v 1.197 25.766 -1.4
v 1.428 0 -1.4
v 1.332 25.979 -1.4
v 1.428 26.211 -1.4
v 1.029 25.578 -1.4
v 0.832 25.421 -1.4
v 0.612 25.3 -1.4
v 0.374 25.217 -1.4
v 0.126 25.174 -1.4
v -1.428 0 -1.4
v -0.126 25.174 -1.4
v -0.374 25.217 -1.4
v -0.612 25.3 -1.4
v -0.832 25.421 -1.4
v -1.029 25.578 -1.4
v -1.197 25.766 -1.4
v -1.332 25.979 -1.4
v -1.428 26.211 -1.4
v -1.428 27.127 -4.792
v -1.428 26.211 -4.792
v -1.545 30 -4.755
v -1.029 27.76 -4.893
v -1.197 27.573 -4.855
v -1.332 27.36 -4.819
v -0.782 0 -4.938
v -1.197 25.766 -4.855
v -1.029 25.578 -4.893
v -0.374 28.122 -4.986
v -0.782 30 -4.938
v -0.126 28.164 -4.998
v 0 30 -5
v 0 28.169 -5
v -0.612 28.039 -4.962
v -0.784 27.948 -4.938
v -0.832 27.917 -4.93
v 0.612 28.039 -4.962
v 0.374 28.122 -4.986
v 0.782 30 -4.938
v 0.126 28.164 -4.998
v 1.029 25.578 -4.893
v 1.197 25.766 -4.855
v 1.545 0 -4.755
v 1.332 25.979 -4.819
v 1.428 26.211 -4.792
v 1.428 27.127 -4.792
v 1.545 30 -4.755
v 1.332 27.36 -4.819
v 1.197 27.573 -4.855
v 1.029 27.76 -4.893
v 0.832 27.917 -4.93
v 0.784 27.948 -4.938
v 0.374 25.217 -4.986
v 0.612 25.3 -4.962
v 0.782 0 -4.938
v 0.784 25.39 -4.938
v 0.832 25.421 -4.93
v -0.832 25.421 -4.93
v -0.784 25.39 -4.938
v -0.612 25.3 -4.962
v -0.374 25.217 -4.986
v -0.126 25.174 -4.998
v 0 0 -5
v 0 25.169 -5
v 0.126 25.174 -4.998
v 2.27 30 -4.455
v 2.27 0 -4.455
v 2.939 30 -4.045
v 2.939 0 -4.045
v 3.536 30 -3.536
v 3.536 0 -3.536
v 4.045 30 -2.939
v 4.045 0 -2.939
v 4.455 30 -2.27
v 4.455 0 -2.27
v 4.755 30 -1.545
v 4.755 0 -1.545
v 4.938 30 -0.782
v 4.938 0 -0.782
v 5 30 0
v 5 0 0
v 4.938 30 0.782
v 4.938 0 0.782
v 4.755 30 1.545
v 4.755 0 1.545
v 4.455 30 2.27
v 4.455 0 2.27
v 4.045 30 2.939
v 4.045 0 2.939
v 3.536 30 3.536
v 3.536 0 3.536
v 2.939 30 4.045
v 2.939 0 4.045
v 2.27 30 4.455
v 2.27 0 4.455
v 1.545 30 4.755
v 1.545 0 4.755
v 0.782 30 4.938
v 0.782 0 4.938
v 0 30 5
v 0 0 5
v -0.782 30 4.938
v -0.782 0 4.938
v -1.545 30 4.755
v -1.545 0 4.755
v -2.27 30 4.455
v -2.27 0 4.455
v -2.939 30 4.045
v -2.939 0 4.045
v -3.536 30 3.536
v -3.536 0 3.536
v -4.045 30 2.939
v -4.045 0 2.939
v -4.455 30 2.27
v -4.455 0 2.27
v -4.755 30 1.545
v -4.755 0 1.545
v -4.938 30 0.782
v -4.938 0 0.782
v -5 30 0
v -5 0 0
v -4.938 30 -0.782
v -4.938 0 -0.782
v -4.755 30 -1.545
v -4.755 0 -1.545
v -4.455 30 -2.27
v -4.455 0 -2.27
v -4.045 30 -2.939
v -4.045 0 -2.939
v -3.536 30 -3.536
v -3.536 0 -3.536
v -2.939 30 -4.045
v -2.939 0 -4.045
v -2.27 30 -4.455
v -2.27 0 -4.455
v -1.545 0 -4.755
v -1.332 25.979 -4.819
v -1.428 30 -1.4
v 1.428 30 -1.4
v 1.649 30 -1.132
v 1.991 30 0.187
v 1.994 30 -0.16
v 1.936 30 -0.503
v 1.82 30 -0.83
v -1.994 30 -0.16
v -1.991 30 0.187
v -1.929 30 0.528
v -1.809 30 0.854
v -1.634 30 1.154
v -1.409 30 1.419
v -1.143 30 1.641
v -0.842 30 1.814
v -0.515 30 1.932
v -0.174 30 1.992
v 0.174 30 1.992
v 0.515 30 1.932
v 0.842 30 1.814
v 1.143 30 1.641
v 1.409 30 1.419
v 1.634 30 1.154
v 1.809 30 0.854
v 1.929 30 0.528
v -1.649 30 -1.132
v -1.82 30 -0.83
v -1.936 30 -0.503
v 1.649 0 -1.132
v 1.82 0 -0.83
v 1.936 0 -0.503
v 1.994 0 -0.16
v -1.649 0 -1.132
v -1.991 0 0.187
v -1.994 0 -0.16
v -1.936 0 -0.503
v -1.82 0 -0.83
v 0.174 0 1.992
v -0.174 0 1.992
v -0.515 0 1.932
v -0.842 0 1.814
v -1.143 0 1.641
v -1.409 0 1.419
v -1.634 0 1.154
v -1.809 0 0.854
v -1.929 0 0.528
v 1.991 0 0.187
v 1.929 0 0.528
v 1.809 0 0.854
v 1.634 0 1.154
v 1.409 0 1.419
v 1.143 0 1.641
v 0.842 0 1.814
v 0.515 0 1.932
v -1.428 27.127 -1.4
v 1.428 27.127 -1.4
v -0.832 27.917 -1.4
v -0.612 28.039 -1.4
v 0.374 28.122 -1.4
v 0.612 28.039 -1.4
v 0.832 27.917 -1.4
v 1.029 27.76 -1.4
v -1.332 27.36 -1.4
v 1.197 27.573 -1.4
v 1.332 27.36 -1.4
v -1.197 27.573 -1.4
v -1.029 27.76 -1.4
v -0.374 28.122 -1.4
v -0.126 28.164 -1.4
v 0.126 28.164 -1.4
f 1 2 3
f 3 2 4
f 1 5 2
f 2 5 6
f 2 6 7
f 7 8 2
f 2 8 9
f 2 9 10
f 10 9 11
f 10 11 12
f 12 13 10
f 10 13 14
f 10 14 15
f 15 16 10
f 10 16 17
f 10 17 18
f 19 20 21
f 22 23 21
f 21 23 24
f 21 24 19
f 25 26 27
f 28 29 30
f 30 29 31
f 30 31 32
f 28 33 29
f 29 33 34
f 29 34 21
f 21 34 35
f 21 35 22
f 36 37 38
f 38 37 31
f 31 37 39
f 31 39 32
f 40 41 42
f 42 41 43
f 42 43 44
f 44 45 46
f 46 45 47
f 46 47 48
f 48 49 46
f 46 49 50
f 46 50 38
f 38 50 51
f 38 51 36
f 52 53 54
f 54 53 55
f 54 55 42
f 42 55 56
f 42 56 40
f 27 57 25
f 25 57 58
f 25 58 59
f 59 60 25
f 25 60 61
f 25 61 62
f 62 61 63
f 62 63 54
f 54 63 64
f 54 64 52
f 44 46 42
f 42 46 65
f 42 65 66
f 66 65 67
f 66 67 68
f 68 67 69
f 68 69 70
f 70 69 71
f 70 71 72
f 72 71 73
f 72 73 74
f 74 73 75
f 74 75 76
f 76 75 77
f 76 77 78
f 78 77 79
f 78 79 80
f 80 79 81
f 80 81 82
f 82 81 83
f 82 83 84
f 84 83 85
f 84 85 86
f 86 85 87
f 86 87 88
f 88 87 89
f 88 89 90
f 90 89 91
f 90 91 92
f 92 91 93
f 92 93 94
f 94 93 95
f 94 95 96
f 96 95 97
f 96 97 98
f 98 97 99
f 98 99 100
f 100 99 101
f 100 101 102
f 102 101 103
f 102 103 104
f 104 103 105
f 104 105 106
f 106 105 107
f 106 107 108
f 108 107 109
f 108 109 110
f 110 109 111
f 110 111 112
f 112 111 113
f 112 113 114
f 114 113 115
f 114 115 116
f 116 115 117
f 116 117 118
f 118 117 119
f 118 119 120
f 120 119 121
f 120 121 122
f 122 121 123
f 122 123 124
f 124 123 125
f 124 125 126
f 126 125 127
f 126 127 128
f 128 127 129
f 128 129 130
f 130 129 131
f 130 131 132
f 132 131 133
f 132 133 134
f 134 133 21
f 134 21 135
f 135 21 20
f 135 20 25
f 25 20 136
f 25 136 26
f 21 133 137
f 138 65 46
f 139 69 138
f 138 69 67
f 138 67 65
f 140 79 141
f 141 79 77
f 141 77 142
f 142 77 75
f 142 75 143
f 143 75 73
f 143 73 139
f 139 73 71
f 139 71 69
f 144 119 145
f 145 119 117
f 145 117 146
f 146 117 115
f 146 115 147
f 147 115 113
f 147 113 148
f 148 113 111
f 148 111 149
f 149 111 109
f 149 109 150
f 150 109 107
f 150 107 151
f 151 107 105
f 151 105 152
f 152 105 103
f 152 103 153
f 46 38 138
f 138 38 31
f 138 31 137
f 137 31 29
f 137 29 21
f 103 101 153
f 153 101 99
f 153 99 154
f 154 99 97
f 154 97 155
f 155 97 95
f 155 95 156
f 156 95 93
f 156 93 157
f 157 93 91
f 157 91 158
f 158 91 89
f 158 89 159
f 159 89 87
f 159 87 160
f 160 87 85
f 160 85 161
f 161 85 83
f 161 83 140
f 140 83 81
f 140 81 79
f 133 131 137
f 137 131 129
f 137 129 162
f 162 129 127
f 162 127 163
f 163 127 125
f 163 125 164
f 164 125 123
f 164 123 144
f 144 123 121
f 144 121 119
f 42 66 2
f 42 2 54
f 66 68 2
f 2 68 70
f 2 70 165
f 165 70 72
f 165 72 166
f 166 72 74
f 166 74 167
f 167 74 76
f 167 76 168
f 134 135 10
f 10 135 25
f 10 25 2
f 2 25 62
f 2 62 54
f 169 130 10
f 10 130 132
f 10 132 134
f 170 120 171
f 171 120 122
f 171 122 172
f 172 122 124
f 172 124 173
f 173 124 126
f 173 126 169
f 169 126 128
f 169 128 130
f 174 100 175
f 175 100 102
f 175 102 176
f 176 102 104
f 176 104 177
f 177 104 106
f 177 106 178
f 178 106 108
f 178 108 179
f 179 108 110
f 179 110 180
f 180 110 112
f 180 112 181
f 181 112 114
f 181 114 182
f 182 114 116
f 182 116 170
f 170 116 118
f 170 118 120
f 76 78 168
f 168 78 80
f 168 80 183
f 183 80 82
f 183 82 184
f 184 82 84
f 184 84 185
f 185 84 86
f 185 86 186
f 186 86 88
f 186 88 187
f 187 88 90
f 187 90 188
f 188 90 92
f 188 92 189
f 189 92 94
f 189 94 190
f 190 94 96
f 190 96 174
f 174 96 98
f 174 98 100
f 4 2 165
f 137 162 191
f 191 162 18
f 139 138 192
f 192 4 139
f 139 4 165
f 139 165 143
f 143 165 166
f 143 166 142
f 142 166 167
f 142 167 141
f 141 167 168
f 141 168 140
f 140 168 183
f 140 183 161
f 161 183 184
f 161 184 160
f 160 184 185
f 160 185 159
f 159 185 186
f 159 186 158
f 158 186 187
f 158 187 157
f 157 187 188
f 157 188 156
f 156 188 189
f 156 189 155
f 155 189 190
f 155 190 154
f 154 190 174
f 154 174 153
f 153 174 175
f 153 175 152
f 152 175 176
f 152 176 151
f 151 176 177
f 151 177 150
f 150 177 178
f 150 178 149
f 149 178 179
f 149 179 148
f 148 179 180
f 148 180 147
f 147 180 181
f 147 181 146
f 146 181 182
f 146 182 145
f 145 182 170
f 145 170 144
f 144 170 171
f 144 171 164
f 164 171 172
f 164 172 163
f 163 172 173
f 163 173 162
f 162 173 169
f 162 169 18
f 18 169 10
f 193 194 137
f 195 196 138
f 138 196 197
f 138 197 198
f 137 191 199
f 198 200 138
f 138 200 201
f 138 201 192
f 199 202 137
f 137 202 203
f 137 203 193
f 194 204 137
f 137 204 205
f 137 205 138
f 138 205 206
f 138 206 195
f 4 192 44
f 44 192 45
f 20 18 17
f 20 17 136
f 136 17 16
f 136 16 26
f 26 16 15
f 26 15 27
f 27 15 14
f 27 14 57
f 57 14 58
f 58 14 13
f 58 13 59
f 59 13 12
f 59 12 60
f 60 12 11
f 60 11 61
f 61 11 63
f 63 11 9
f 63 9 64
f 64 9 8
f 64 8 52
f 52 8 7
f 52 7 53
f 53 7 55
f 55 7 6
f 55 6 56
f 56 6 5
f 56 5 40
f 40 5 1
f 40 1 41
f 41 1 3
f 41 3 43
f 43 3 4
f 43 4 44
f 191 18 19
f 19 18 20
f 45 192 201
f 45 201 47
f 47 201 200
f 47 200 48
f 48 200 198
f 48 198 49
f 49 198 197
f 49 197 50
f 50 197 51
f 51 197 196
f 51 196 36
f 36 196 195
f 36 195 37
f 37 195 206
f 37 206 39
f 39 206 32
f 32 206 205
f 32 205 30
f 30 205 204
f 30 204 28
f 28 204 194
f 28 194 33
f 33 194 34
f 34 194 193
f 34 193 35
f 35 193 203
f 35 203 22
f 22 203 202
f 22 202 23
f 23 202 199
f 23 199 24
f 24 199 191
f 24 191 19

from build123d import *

# Parameters (mm, degrees)
SKETCH_2_R          = 5
EXTRUDE_2_DEPTH     = 30
CUT_EXTRUDE_1_DEPTH = 31.822070015
CUT_EXTRUDE_2_REACH = 33.08


with BuildPart() as part:
    # 草图2 → 凸台-拉伸2 (new body)
    with BuildSketch(Plane(origin=(0, 0, 0), x_dir=(1, 0, 0), z_dir=(0, 1, 0))):
        Circle(SKETCH_2_R)
    extrude(amount=EXTRUDE_2_DEPTH)

    # 草图4 → 切除-拉伸1 (cut, through all)
    with BuildSketch(Plane(origin=(0, 30, 0), x_dir=(1, 0, 0), z_dir=(0, 1, 0))):
        with BuildLine():
            Line((0, 1.4), (-1.428285686, 1.4))
            ThreePointArc((-1.428285686, 1.4), (-0.756117924, -1.851563039), (2, 0))
            ThreePointArc((2, 0), (1.851563039, 0.756117924), (1.428285686, 1.4))
            Line((1.428285686, 1.4), (0, 1.4))
        make_face()
    extrude(amount=-CUT_EXTRUDE_1_DEPTH, mode=Mode.SUBTRACT)

    # 草图5 → 切除-拉伸2 (cut, up to next)
    with BuildSketch(Plane.XY.offset(-1.4), mode=Mode.PRIVATE) as cut_extrude_2_sk1:
        with BuildLine():
            Line((1.428285686, 26.210947143), (1.428285686, 27.127462282))
            ThreePointArc((1.428285686, 27.127462282), (0.88391562, 27.881101233), (0, 28.169204712))
            ThreePointArc((0, 28.169204712), (-0.88391562, 27.881101233), (-1.428285686, 27.127462282))
            Line((-1.428285686, 27.127462282), (-1.428285686, 26.210947143))
            ThreePointArc((-1.428285686, 26.210947143), (0, 25.169204712), (1.428285686, 26.210947143))
        make_face()
    cut_extrude_2_tool1 = extrude(cut_extrude_2_sk1.sketch, amount=-CUT_EXTRUDE_2_REACH, mode=Mode.PRIVATE) & part.part
    add(cut_extrude_2_tool1.solids().sort_by_distance((0, 26.669205, -1.4))[0], mode=Mode.SUBTRACT)


solid = part.part
